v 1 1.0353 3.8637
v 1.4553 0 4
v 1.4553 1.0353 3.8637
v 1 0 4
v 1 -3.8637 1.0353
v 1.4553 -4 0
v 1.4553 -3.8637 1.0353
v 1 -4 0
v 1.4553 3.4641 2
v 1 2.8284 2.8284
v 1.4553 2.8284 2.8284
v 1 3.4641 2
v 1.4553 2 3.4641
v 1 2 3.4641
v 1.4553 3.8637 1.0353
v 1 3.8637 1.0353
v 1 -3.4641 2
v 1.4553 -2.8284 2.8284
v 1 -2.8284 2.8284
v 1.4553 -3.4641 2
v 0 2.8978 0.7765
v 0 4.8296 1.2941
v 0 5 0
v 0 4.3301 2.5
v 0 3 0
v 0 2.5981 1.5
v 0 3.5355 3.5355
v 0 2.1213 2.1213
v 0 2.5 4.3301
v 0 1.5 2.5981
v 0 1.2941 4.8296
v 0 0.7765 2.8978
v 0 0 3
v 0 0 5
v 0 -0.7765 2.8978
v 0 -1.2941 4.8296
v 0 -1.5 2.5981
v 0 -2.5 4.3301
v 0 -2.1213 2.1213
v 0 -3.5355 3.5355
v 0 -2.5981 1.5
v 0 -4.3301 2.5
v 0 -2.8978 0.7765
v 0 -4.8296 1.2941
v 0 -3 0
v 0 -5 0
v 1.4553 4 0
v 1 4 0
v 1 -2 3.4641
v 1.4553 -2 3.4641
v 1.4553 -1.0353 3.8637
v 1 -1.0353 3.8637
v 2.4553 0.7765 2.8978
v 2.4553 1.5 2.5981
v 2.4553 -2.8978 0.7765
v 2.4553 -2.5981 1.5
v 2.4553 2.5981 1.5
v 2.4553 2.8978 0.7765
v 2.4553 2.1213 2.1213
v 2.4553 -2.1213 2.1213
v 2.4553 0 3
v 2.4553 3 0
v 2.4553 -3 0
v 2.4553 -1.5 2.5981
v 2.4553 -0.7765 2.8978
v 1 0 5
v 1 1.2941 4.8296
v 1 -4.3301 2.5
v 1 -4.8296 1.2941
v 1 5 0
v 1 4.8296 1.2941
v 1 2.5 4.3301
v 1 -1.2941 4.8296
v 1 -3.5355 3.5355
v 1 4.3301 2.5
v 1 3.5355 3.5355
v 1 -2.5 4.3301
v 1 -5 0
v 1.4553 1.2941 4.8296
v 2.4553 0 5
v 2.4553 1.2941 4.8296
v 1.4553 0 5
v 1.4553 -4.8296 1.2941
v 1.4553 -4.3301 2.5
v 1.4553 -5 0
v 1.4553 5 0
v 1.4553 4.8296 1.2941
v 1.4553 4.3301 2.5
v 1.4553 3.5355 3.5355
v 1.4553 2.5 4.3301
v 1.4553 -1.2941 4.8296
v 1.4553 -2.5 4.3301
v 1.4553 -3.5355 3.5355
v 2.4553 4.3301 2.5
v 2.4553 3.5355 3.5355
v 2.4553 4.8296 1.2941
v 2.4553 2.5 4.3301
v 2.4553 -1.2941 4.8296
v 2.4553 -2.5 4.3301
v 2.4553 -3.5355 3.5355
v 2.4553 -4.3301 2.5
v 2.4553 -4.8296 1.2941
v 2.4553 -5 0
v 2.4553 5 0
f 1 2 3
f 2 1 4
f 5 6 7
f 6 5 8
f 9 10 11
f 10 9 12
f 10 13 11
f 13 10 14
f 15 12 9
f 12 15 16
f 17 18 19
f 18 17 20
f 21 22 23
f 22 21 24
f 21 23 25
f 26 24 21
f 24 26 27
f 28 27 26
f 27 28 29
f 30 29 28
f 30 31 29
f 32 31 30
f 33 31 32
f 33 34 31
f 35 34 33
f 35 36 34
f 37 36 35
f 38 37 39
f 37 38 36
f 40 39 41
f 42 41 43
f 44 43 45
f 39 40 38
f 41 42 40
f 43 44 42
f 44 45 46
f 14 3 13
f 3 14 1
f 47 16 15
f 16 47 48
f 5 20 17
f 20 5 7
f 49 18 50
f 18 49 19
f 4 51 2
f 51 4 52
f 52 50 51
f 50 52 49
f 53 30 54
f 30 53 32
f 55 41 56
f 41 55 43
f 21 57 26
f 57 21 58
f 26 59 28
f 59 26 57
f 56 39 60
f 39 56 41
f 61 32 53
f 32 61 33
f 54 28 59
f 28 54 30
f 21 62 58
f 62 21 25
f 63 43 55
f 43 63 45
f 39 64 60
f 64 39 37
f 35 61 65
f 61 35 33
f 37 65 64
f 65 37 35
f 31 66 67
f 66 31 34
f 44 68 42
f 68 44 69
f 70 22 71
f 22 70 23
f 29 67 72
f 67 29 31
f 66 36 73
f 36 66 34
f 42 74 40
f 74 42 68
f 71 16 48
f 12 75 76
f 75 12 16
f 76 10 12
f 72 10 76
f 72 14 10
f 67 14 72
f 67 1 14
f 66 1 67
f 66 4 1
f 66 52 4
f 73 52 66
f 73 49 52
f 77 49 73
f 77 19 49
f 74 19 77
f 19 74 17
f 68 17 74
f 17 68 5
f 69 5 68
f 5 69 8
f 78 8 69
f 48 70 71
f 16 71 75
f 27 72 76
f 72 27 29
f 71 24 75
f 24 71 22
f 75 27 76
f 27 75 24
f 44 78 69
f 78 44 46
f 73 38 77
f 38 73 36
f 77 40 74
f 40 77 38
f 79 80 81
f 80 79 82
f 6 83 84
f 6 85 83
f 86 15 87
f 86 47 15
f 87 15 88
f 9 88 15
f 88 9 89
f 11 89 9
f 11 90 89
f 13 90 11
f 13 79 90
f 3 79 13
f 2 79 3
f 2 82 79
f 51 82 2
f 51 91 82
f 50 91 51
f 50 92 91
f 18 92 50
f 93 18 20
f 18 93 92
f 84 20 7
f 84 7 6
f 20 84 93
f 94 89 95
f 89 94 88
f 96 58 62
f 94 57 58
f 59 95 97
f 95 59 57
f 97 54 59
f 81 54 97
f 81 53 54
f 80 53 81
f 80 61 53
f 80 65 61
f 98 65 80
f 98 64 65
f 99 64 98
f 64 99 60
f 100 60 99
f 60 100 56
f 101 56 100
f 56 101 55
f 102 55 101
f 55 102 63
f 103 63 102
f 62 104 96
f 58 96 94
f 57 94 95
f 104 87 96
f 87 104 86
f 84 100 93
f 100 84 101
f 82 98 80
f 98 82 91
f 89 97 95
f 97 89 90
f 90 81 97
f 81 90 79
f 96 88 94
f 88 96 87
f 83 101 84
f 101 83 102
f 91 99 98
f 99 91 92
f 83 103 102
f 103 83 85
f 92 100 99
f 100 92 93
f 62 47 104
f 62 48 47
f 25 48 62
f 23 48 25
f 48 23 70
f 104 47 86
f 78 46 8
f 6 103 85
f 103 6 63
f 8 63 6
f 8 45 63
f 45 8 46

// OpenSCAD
// file: ../build_environments.scad
// build_environments.scad: modules to build level sections
//

module pool(diameter=10.0, wall_height=2.0, step_width=3.0, connections=[])
{
    difference() {
        union() {
        difference() {
            cylinder(h=0.5,r1=diameter+step_width,r2=diameter+step_width,$fn=48);
            translate([0,0,-0.1])
                cylinder(h=0.7,r1=diameter,r2=diameter,$fn=48);
        }
        difference() {
            cylinder(h=wall_height,r1=diameter+step_width+1.0,r2=diameter+step_width+1.0,$fn=48);
            translate([0,0,-0.1])
                cylinder(h=wall_height+0.2,r1=diameter+step_width,r2=diameter+step_width,$fn=48);
        }
        }
    
        for (c = connections)
        {
            rotate([0,90,0]) {
                angle = atan2(c[1],c[0]);
                rotate([-angle,0,0]) {
                    cylinder(h=diameter+5.0,r1=c[2],r2=c[2],$fn=48);
                }
            }
        }
    }
}

module straight(length=10.0, width=2.0, dy1=0.0, dy2=0.0, dz=0.0)
{
    dims = [0, 0, 0, 0, 0, (dz/length)];
    matrix = [
        [ 1, dims[0], dims[1], 0 ],
        [ dims[2], 1, dims[4], 0 ],
        [ dims[5], dims[3], 1, 0 ],
        [ 0, 0, 0, 1 ]
    ];
    multmatrix(matrix)
    difference() {
        translate([dy1,0,0])
        union() {
            rotate([0,90,0]) {
                difference() {
                    cylinder(h=(length-dy1-dy2),r1=width+1.0,r2=width+1.0,$fn=24);
                    translate([0,0,-0.1])
                        cylinder(h=(length-dy1-dy2+0.2),r1=width,r2=width,$fn=24);
                }
                difference() {
                    cylinder(h=1.0,r1=width+2.0,r2=width+2.0,$fn=24);
                    translate([0,0,-0.1])
                        cylinder(h=1.2,r1=width,r2=width,$fn=24);
                }
                translate([0,0,(length-dy1-dy2)-1.0]) {
                    difference() {
                        cylinder(h=1.0,r1=width+2.0,r2=width+2.0,$fn=24);
                        translate([0,0,-0.1])
                            cylinder(h=1.2,r1=width,r2=width,$fn=24);
                    }
                }
            }
        }
        translate([0,0,-(2*width+4.0)/2])
            cube([3*length,3*length,2*width+4.0],center=true);
    }
}

module curve(p0=[0,0], center=[0,0], dir=1, angle=0.0, width=2.0)
{
    radius = sqrt((p0[0]-center[0])*(p0[0]-center[0]) + (p0[1]-center[1])*(p0[1]-center[1]));
    if (dir == 0) {
        difference() {
            rotate([0,0,-90])
            difference() {
                rotate_extrude(angle = angle, convexity = 10, $fn=32)
                    translate([radius, 0, 0])
                        circle(r = width+1.0,$fn=24);
                rotate([0,0,-1.0])
                    rotate_extrude(angle = angle+2.0, convexity = 10, $fn=32)
                        translate([radius, 0, 0])
                            circle(r = width,$fn=24);
            }
            translate([0,0,-(2*width+4.0)/2])
                cube([5*radius,5*radius,2*width+4.0],center=true);
        }
    }
    else {
        difference() {
            rotate([0,0,90])
            difference() {
                rotate_extrude(angle = -angle, convexity = 10, $fn=32)
                    translate([radius, 0, 0])
                        circle(r = width+1.0,$fn=24);
                rotate([0,0,1.0])
                    rotate_extrude(angle = -angle-2.0, convexity = 10, $fn=32)
                        translate([radius, 0, 0])
                            circle(r = width,$fn=24);
            }
            translate([0,0,-(2*width+4.0)/2])
                cube([5*radius,5*radius,2*width+4.0],center=true);
        }
    }

}

// test pool
//pool(diameter=12.0000, wall_height=3.0000, step_width=3.0000, connections=[[0.0000,-26.0000,2.0000], [23.6074,0.0000,2.0000]]);

// test straight, slope
//straight(length=26.0000, width=2.0000, dy1=11.8322, dy2=6.7082, dz=0.0000);
//straight(length=29.1549, width=12.0000, dy1=0.0000, dy2=0.0000, dz=-15.0000);

// test curve
//curve(p0=[23.6074, 0.0000], center=[23.6074, 5.0000], dir=0, angle=60.1011, width=2.0000);
//curve(p0=[33.6426, 12.4219], center=[37.9771, 9.9295], dir=1, angle=120.4627, width=2.0000);
// main file
use <../build_environments.scad>;
straight(length=8.7799, width=3.0000, dy1=0.0000, dy2=6.3246, dz=0.0000);
